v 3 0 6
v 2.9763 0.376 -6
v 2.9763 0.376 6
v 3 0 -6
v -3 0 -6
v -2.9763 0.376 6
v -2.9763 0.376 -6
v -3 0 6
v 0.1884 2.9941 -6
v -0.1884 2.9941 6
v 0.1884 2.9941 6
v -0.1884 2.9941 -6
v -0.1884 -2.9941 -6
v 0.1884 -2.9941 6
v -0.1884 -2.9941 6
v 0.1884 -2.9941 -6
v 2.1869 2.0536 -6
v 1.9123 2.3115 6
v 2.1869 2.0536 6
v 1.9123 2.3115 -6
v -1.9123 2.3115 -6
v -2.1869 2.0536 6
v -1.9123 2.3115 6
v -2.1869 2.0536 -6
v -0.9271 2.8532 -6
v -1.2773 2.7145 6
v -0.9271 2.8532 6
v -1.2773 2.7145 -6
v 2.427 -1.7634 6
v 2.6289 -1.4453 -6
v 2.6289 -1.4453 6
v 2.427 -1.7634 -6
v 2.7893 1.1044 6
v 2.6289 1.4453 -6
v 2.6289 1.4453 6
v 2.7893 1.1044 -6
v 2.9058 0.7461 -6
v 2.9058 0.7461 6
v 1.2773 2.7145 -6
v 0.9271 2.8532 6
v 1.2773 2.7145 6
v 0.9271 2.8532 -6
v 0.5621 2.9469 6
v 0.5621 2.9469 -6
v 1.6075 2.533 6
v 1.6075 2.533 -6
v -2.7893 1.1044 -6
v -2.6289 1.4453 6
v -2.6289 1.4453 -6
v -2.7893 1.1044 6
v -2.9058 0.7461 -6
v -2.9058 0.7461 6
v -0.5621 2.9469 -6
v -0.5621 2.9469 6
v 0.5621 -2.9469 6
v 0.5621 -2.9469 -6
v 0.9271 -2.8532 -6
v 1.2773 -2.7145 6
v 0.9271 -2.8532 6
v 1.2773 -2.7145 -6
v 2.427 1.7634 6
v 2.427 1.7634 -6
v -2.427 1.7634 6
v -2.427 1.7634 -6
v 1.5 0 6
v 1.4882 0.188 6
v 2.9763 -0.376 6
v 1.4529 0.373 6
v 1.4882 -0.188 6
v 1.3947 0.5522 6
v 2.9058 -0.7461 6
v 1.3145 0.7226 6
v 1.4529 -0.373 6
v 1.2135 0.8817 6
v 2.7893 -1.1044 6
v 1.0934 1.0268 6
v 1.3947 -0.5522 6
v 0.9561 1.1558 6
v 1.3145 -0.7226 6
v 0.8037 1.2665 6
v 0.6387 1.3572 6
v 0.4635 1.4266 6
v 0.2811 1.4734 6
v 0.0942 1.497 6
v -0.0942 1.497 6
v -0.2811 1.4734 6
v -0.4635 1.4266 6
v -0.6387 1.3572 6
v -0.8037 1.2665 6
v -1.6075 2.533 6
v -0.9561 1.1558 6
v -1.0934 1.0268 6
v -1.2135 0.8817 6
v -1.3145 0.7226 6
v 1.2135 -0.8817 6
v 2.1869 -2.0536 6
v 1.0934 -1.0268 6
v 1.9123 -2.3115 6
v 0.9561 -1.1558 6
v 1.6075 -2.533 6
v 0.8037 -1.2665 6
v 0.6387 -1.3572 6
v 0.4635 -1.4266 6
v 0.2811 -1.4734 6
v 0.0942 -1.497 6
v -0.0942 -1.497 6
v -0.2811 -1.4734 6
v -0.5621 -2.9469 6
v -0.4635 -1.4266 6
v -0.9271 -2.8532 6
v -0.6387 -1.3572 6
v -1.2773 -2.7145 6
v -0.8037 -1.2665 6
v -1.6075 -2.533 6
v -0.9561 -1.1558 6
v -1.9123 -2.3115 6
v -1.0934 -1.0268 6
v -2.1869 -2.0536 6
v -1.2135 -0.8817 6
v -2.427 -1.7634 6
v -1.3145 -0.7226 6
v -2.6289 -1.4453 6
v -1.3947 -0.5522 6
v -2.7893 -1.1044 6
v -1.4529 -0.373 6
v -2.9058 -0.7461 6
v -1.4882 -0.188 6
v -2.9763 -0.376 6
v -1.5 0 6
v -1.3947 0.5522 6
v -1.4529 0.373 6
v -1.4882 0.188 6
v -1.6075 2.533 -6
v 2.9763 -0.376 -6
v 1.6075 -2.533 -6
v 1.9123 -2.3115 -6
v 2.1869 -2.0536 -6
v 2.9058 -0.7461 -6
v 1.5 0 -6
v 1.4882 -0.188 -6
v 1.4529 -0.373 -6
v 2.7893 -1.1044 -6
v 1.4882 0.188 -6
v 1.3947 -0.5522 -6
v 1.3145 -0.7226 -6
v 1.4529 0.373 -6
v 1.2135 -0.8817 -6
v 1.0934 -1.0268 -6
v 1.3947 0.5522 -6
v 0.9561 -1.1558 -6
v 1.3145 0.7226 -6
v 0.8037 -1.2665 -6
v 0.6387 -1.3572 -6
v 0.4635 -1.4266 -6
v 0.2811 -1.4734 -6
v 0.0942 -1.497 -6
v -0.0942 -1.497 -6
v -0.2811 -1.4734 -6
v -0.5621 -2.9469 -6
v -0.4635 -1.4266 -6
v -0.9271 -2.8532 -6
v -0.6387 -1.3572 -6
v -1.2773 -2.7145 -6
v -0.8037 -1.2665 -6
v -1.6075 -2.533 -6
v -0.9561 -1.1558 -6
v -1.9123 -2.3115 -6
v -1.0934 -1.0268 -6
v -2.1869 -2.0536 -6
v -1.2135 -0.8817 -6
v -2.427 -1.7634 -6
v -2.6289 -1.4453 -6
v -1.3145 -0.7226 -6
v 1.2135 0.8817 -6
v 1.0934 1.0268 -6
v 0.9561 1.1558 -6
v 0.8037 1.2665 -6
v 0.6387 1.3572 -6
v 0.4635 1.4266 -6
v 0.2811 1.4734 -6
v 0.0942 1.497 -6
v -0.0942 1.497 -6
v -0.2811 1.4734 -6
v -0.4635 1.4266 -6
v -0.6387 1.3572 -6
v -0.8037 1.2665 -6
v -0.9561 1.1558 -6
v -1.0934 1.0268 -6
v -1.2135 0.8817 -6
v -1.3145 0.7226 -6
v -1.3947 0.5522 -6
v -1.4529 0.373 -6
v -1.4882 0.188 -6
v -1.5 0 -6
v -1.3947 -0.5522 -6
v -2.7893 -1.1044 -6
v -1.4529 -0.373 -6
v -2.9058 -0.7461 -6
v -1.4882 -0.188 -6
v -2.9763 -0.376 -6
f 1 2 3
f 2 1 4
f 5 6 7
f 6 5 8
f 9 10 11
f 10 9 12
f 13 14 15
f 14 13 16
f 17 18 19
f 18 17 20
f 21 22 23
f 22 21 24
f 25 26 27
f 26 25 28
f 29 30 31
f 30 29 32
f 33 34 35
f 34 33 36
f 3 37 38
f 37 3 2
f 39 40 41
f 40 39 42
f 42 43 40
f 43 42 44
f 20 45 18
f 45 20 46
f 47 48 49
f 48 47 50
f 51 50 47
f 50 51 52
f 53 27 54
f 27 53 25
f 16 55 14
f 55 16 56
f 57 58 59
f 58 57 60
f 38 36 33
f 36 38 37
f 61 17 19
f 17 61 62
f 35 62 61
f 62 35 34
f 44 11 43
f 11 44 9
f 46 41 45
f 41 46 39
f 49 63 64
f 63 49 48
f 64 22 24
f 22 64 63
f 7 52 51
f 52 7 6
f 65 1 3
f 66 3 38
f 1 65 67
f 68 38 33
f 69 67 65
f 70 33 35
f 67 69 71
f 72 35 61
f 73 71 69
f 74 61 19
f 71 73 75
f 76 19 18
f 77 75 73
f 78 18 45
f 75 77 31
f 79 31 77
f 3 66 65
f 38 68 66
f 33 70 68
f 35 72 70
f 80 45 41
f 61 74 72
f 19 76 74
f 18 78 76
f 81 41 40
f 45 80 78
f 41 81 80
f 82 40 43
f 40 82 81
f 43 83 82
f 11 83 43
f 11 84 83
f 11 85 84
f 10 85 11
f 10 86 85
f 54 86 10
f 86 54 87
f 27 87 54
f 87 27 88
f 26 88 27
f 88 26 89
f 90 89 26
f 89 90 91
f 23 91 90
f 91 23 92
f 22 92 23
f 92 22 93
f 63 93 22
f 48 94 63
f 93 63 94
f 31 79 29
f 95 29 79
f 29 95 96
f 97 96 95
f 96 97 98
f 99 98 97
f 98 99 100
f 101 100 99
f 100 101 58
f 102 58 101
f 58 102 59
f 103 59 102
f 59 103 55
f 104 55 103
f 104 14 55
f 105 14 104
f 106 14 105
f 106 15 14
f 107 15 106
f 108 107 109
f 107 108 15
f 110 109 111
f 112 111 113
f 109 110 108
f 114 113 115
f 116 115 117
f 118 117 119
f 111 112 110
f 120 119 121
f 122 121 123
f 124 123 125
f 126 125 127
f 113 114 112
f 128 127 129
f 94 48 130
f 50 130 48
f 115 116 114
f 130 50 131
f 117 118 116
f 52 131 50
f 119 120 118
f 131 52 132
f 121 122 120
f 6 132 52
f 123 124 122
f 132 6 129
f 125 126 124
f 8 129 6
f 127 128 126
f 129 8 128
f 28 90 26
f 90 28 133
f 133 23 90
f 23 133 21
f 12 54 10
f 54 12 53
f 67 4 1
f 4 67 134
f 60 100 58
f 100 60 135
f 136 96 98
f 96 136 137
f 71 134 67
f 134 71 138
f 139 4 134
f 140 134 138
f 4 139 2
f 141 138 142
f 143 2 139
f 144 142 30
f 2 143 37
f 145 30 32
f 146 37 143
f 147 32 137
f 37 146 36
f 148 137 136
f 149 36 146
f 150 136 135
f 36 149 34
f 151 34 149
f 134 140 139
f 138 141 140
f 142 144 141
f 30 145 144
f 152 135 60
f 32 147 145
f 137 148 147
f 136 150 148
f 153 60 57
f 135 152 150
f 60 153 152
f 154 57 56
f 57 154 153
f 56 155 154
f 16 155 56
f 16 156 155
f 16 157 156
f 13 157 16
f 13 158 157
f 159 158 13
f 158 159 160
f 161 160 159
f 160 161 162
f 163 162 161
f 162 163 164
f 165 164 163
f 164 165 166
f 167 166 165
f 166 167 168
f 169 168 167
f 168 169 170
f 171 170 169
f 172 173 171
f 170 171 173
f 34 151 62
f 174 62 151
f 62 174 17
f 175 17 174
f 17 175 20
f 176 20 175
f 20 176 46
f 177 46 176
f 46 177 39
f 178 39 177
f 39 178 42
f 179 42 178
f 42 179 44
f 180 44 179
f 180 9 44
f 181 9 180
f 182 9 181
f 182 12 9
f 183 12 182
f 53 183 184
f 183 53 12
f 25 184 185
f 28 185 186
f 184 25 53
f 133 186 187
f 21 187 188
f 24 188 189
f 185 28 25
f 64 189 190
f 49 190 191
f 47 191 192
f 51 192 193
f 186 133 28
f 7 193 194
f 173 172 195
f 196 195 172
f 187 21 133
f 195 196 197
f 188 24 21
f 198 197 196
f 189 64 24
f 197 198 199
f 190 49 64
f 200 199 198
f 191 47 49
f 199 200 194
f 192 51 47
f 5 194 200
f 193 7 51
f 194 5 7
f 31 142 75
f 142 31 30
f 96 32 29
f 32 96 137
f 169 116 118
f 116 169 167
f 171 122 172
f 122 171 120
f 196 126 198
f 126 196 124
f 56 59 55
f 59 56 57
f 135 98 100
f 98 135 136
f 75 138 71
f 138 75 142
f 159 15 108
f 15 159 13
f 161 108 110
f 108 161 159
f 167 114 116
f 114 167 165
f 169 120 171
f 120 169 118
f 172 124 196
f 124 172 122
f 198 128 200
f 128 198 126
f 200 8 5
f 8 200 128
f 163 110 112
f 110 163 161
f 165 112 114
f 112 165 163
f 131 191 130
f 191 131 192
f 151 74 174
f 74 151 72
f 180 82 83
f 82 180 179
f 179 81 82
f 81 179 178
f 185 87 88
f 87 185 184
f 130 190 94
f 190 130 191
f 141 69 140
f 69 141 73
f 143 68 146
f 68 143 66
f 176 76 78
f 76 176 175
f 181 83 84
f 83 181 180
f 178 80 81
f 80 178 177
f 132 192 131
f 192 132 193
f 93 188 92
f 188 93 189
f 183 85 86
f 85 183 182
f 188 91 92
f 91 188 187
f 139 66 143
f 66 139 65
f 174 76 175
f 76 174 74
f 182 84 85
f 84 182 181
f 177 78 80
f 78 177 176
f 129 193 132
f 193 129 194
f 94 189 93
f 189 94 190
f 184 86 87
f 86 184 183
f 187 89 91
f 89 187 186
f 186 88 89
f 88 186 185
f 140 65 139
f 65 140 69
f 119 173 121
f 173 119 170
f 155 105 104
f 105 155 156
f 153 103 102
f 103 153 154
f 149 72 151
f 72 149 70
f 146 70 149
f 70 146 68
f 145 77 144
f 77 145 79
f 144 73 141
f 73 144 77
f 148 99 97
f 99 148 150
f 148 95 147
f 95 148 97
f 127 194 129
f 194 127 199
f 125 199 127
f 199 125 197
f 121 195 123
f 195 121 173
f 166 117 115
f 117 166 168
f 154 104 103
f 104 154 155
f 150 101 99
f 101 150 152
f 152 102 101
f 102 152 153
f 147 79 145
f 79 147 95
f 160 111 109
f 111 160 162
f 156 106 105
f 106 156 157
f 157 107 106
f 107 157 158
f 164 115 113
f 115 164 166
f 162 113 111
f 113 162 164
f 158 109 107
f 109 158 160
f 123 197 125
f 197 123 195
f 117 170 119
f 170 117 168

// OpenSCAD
$fn = 50;


difference() {
	union() {
		translate(v = [0, 0, -6.0000000000]) {
			cylinder(h = 12, r = 3.0000000000);
		}
	}
	union() {
		translate(v = [0, 0, -100.0000000000]) {
			cylinder(h = 200, r = 1.5000000000);
		}
	}
}
